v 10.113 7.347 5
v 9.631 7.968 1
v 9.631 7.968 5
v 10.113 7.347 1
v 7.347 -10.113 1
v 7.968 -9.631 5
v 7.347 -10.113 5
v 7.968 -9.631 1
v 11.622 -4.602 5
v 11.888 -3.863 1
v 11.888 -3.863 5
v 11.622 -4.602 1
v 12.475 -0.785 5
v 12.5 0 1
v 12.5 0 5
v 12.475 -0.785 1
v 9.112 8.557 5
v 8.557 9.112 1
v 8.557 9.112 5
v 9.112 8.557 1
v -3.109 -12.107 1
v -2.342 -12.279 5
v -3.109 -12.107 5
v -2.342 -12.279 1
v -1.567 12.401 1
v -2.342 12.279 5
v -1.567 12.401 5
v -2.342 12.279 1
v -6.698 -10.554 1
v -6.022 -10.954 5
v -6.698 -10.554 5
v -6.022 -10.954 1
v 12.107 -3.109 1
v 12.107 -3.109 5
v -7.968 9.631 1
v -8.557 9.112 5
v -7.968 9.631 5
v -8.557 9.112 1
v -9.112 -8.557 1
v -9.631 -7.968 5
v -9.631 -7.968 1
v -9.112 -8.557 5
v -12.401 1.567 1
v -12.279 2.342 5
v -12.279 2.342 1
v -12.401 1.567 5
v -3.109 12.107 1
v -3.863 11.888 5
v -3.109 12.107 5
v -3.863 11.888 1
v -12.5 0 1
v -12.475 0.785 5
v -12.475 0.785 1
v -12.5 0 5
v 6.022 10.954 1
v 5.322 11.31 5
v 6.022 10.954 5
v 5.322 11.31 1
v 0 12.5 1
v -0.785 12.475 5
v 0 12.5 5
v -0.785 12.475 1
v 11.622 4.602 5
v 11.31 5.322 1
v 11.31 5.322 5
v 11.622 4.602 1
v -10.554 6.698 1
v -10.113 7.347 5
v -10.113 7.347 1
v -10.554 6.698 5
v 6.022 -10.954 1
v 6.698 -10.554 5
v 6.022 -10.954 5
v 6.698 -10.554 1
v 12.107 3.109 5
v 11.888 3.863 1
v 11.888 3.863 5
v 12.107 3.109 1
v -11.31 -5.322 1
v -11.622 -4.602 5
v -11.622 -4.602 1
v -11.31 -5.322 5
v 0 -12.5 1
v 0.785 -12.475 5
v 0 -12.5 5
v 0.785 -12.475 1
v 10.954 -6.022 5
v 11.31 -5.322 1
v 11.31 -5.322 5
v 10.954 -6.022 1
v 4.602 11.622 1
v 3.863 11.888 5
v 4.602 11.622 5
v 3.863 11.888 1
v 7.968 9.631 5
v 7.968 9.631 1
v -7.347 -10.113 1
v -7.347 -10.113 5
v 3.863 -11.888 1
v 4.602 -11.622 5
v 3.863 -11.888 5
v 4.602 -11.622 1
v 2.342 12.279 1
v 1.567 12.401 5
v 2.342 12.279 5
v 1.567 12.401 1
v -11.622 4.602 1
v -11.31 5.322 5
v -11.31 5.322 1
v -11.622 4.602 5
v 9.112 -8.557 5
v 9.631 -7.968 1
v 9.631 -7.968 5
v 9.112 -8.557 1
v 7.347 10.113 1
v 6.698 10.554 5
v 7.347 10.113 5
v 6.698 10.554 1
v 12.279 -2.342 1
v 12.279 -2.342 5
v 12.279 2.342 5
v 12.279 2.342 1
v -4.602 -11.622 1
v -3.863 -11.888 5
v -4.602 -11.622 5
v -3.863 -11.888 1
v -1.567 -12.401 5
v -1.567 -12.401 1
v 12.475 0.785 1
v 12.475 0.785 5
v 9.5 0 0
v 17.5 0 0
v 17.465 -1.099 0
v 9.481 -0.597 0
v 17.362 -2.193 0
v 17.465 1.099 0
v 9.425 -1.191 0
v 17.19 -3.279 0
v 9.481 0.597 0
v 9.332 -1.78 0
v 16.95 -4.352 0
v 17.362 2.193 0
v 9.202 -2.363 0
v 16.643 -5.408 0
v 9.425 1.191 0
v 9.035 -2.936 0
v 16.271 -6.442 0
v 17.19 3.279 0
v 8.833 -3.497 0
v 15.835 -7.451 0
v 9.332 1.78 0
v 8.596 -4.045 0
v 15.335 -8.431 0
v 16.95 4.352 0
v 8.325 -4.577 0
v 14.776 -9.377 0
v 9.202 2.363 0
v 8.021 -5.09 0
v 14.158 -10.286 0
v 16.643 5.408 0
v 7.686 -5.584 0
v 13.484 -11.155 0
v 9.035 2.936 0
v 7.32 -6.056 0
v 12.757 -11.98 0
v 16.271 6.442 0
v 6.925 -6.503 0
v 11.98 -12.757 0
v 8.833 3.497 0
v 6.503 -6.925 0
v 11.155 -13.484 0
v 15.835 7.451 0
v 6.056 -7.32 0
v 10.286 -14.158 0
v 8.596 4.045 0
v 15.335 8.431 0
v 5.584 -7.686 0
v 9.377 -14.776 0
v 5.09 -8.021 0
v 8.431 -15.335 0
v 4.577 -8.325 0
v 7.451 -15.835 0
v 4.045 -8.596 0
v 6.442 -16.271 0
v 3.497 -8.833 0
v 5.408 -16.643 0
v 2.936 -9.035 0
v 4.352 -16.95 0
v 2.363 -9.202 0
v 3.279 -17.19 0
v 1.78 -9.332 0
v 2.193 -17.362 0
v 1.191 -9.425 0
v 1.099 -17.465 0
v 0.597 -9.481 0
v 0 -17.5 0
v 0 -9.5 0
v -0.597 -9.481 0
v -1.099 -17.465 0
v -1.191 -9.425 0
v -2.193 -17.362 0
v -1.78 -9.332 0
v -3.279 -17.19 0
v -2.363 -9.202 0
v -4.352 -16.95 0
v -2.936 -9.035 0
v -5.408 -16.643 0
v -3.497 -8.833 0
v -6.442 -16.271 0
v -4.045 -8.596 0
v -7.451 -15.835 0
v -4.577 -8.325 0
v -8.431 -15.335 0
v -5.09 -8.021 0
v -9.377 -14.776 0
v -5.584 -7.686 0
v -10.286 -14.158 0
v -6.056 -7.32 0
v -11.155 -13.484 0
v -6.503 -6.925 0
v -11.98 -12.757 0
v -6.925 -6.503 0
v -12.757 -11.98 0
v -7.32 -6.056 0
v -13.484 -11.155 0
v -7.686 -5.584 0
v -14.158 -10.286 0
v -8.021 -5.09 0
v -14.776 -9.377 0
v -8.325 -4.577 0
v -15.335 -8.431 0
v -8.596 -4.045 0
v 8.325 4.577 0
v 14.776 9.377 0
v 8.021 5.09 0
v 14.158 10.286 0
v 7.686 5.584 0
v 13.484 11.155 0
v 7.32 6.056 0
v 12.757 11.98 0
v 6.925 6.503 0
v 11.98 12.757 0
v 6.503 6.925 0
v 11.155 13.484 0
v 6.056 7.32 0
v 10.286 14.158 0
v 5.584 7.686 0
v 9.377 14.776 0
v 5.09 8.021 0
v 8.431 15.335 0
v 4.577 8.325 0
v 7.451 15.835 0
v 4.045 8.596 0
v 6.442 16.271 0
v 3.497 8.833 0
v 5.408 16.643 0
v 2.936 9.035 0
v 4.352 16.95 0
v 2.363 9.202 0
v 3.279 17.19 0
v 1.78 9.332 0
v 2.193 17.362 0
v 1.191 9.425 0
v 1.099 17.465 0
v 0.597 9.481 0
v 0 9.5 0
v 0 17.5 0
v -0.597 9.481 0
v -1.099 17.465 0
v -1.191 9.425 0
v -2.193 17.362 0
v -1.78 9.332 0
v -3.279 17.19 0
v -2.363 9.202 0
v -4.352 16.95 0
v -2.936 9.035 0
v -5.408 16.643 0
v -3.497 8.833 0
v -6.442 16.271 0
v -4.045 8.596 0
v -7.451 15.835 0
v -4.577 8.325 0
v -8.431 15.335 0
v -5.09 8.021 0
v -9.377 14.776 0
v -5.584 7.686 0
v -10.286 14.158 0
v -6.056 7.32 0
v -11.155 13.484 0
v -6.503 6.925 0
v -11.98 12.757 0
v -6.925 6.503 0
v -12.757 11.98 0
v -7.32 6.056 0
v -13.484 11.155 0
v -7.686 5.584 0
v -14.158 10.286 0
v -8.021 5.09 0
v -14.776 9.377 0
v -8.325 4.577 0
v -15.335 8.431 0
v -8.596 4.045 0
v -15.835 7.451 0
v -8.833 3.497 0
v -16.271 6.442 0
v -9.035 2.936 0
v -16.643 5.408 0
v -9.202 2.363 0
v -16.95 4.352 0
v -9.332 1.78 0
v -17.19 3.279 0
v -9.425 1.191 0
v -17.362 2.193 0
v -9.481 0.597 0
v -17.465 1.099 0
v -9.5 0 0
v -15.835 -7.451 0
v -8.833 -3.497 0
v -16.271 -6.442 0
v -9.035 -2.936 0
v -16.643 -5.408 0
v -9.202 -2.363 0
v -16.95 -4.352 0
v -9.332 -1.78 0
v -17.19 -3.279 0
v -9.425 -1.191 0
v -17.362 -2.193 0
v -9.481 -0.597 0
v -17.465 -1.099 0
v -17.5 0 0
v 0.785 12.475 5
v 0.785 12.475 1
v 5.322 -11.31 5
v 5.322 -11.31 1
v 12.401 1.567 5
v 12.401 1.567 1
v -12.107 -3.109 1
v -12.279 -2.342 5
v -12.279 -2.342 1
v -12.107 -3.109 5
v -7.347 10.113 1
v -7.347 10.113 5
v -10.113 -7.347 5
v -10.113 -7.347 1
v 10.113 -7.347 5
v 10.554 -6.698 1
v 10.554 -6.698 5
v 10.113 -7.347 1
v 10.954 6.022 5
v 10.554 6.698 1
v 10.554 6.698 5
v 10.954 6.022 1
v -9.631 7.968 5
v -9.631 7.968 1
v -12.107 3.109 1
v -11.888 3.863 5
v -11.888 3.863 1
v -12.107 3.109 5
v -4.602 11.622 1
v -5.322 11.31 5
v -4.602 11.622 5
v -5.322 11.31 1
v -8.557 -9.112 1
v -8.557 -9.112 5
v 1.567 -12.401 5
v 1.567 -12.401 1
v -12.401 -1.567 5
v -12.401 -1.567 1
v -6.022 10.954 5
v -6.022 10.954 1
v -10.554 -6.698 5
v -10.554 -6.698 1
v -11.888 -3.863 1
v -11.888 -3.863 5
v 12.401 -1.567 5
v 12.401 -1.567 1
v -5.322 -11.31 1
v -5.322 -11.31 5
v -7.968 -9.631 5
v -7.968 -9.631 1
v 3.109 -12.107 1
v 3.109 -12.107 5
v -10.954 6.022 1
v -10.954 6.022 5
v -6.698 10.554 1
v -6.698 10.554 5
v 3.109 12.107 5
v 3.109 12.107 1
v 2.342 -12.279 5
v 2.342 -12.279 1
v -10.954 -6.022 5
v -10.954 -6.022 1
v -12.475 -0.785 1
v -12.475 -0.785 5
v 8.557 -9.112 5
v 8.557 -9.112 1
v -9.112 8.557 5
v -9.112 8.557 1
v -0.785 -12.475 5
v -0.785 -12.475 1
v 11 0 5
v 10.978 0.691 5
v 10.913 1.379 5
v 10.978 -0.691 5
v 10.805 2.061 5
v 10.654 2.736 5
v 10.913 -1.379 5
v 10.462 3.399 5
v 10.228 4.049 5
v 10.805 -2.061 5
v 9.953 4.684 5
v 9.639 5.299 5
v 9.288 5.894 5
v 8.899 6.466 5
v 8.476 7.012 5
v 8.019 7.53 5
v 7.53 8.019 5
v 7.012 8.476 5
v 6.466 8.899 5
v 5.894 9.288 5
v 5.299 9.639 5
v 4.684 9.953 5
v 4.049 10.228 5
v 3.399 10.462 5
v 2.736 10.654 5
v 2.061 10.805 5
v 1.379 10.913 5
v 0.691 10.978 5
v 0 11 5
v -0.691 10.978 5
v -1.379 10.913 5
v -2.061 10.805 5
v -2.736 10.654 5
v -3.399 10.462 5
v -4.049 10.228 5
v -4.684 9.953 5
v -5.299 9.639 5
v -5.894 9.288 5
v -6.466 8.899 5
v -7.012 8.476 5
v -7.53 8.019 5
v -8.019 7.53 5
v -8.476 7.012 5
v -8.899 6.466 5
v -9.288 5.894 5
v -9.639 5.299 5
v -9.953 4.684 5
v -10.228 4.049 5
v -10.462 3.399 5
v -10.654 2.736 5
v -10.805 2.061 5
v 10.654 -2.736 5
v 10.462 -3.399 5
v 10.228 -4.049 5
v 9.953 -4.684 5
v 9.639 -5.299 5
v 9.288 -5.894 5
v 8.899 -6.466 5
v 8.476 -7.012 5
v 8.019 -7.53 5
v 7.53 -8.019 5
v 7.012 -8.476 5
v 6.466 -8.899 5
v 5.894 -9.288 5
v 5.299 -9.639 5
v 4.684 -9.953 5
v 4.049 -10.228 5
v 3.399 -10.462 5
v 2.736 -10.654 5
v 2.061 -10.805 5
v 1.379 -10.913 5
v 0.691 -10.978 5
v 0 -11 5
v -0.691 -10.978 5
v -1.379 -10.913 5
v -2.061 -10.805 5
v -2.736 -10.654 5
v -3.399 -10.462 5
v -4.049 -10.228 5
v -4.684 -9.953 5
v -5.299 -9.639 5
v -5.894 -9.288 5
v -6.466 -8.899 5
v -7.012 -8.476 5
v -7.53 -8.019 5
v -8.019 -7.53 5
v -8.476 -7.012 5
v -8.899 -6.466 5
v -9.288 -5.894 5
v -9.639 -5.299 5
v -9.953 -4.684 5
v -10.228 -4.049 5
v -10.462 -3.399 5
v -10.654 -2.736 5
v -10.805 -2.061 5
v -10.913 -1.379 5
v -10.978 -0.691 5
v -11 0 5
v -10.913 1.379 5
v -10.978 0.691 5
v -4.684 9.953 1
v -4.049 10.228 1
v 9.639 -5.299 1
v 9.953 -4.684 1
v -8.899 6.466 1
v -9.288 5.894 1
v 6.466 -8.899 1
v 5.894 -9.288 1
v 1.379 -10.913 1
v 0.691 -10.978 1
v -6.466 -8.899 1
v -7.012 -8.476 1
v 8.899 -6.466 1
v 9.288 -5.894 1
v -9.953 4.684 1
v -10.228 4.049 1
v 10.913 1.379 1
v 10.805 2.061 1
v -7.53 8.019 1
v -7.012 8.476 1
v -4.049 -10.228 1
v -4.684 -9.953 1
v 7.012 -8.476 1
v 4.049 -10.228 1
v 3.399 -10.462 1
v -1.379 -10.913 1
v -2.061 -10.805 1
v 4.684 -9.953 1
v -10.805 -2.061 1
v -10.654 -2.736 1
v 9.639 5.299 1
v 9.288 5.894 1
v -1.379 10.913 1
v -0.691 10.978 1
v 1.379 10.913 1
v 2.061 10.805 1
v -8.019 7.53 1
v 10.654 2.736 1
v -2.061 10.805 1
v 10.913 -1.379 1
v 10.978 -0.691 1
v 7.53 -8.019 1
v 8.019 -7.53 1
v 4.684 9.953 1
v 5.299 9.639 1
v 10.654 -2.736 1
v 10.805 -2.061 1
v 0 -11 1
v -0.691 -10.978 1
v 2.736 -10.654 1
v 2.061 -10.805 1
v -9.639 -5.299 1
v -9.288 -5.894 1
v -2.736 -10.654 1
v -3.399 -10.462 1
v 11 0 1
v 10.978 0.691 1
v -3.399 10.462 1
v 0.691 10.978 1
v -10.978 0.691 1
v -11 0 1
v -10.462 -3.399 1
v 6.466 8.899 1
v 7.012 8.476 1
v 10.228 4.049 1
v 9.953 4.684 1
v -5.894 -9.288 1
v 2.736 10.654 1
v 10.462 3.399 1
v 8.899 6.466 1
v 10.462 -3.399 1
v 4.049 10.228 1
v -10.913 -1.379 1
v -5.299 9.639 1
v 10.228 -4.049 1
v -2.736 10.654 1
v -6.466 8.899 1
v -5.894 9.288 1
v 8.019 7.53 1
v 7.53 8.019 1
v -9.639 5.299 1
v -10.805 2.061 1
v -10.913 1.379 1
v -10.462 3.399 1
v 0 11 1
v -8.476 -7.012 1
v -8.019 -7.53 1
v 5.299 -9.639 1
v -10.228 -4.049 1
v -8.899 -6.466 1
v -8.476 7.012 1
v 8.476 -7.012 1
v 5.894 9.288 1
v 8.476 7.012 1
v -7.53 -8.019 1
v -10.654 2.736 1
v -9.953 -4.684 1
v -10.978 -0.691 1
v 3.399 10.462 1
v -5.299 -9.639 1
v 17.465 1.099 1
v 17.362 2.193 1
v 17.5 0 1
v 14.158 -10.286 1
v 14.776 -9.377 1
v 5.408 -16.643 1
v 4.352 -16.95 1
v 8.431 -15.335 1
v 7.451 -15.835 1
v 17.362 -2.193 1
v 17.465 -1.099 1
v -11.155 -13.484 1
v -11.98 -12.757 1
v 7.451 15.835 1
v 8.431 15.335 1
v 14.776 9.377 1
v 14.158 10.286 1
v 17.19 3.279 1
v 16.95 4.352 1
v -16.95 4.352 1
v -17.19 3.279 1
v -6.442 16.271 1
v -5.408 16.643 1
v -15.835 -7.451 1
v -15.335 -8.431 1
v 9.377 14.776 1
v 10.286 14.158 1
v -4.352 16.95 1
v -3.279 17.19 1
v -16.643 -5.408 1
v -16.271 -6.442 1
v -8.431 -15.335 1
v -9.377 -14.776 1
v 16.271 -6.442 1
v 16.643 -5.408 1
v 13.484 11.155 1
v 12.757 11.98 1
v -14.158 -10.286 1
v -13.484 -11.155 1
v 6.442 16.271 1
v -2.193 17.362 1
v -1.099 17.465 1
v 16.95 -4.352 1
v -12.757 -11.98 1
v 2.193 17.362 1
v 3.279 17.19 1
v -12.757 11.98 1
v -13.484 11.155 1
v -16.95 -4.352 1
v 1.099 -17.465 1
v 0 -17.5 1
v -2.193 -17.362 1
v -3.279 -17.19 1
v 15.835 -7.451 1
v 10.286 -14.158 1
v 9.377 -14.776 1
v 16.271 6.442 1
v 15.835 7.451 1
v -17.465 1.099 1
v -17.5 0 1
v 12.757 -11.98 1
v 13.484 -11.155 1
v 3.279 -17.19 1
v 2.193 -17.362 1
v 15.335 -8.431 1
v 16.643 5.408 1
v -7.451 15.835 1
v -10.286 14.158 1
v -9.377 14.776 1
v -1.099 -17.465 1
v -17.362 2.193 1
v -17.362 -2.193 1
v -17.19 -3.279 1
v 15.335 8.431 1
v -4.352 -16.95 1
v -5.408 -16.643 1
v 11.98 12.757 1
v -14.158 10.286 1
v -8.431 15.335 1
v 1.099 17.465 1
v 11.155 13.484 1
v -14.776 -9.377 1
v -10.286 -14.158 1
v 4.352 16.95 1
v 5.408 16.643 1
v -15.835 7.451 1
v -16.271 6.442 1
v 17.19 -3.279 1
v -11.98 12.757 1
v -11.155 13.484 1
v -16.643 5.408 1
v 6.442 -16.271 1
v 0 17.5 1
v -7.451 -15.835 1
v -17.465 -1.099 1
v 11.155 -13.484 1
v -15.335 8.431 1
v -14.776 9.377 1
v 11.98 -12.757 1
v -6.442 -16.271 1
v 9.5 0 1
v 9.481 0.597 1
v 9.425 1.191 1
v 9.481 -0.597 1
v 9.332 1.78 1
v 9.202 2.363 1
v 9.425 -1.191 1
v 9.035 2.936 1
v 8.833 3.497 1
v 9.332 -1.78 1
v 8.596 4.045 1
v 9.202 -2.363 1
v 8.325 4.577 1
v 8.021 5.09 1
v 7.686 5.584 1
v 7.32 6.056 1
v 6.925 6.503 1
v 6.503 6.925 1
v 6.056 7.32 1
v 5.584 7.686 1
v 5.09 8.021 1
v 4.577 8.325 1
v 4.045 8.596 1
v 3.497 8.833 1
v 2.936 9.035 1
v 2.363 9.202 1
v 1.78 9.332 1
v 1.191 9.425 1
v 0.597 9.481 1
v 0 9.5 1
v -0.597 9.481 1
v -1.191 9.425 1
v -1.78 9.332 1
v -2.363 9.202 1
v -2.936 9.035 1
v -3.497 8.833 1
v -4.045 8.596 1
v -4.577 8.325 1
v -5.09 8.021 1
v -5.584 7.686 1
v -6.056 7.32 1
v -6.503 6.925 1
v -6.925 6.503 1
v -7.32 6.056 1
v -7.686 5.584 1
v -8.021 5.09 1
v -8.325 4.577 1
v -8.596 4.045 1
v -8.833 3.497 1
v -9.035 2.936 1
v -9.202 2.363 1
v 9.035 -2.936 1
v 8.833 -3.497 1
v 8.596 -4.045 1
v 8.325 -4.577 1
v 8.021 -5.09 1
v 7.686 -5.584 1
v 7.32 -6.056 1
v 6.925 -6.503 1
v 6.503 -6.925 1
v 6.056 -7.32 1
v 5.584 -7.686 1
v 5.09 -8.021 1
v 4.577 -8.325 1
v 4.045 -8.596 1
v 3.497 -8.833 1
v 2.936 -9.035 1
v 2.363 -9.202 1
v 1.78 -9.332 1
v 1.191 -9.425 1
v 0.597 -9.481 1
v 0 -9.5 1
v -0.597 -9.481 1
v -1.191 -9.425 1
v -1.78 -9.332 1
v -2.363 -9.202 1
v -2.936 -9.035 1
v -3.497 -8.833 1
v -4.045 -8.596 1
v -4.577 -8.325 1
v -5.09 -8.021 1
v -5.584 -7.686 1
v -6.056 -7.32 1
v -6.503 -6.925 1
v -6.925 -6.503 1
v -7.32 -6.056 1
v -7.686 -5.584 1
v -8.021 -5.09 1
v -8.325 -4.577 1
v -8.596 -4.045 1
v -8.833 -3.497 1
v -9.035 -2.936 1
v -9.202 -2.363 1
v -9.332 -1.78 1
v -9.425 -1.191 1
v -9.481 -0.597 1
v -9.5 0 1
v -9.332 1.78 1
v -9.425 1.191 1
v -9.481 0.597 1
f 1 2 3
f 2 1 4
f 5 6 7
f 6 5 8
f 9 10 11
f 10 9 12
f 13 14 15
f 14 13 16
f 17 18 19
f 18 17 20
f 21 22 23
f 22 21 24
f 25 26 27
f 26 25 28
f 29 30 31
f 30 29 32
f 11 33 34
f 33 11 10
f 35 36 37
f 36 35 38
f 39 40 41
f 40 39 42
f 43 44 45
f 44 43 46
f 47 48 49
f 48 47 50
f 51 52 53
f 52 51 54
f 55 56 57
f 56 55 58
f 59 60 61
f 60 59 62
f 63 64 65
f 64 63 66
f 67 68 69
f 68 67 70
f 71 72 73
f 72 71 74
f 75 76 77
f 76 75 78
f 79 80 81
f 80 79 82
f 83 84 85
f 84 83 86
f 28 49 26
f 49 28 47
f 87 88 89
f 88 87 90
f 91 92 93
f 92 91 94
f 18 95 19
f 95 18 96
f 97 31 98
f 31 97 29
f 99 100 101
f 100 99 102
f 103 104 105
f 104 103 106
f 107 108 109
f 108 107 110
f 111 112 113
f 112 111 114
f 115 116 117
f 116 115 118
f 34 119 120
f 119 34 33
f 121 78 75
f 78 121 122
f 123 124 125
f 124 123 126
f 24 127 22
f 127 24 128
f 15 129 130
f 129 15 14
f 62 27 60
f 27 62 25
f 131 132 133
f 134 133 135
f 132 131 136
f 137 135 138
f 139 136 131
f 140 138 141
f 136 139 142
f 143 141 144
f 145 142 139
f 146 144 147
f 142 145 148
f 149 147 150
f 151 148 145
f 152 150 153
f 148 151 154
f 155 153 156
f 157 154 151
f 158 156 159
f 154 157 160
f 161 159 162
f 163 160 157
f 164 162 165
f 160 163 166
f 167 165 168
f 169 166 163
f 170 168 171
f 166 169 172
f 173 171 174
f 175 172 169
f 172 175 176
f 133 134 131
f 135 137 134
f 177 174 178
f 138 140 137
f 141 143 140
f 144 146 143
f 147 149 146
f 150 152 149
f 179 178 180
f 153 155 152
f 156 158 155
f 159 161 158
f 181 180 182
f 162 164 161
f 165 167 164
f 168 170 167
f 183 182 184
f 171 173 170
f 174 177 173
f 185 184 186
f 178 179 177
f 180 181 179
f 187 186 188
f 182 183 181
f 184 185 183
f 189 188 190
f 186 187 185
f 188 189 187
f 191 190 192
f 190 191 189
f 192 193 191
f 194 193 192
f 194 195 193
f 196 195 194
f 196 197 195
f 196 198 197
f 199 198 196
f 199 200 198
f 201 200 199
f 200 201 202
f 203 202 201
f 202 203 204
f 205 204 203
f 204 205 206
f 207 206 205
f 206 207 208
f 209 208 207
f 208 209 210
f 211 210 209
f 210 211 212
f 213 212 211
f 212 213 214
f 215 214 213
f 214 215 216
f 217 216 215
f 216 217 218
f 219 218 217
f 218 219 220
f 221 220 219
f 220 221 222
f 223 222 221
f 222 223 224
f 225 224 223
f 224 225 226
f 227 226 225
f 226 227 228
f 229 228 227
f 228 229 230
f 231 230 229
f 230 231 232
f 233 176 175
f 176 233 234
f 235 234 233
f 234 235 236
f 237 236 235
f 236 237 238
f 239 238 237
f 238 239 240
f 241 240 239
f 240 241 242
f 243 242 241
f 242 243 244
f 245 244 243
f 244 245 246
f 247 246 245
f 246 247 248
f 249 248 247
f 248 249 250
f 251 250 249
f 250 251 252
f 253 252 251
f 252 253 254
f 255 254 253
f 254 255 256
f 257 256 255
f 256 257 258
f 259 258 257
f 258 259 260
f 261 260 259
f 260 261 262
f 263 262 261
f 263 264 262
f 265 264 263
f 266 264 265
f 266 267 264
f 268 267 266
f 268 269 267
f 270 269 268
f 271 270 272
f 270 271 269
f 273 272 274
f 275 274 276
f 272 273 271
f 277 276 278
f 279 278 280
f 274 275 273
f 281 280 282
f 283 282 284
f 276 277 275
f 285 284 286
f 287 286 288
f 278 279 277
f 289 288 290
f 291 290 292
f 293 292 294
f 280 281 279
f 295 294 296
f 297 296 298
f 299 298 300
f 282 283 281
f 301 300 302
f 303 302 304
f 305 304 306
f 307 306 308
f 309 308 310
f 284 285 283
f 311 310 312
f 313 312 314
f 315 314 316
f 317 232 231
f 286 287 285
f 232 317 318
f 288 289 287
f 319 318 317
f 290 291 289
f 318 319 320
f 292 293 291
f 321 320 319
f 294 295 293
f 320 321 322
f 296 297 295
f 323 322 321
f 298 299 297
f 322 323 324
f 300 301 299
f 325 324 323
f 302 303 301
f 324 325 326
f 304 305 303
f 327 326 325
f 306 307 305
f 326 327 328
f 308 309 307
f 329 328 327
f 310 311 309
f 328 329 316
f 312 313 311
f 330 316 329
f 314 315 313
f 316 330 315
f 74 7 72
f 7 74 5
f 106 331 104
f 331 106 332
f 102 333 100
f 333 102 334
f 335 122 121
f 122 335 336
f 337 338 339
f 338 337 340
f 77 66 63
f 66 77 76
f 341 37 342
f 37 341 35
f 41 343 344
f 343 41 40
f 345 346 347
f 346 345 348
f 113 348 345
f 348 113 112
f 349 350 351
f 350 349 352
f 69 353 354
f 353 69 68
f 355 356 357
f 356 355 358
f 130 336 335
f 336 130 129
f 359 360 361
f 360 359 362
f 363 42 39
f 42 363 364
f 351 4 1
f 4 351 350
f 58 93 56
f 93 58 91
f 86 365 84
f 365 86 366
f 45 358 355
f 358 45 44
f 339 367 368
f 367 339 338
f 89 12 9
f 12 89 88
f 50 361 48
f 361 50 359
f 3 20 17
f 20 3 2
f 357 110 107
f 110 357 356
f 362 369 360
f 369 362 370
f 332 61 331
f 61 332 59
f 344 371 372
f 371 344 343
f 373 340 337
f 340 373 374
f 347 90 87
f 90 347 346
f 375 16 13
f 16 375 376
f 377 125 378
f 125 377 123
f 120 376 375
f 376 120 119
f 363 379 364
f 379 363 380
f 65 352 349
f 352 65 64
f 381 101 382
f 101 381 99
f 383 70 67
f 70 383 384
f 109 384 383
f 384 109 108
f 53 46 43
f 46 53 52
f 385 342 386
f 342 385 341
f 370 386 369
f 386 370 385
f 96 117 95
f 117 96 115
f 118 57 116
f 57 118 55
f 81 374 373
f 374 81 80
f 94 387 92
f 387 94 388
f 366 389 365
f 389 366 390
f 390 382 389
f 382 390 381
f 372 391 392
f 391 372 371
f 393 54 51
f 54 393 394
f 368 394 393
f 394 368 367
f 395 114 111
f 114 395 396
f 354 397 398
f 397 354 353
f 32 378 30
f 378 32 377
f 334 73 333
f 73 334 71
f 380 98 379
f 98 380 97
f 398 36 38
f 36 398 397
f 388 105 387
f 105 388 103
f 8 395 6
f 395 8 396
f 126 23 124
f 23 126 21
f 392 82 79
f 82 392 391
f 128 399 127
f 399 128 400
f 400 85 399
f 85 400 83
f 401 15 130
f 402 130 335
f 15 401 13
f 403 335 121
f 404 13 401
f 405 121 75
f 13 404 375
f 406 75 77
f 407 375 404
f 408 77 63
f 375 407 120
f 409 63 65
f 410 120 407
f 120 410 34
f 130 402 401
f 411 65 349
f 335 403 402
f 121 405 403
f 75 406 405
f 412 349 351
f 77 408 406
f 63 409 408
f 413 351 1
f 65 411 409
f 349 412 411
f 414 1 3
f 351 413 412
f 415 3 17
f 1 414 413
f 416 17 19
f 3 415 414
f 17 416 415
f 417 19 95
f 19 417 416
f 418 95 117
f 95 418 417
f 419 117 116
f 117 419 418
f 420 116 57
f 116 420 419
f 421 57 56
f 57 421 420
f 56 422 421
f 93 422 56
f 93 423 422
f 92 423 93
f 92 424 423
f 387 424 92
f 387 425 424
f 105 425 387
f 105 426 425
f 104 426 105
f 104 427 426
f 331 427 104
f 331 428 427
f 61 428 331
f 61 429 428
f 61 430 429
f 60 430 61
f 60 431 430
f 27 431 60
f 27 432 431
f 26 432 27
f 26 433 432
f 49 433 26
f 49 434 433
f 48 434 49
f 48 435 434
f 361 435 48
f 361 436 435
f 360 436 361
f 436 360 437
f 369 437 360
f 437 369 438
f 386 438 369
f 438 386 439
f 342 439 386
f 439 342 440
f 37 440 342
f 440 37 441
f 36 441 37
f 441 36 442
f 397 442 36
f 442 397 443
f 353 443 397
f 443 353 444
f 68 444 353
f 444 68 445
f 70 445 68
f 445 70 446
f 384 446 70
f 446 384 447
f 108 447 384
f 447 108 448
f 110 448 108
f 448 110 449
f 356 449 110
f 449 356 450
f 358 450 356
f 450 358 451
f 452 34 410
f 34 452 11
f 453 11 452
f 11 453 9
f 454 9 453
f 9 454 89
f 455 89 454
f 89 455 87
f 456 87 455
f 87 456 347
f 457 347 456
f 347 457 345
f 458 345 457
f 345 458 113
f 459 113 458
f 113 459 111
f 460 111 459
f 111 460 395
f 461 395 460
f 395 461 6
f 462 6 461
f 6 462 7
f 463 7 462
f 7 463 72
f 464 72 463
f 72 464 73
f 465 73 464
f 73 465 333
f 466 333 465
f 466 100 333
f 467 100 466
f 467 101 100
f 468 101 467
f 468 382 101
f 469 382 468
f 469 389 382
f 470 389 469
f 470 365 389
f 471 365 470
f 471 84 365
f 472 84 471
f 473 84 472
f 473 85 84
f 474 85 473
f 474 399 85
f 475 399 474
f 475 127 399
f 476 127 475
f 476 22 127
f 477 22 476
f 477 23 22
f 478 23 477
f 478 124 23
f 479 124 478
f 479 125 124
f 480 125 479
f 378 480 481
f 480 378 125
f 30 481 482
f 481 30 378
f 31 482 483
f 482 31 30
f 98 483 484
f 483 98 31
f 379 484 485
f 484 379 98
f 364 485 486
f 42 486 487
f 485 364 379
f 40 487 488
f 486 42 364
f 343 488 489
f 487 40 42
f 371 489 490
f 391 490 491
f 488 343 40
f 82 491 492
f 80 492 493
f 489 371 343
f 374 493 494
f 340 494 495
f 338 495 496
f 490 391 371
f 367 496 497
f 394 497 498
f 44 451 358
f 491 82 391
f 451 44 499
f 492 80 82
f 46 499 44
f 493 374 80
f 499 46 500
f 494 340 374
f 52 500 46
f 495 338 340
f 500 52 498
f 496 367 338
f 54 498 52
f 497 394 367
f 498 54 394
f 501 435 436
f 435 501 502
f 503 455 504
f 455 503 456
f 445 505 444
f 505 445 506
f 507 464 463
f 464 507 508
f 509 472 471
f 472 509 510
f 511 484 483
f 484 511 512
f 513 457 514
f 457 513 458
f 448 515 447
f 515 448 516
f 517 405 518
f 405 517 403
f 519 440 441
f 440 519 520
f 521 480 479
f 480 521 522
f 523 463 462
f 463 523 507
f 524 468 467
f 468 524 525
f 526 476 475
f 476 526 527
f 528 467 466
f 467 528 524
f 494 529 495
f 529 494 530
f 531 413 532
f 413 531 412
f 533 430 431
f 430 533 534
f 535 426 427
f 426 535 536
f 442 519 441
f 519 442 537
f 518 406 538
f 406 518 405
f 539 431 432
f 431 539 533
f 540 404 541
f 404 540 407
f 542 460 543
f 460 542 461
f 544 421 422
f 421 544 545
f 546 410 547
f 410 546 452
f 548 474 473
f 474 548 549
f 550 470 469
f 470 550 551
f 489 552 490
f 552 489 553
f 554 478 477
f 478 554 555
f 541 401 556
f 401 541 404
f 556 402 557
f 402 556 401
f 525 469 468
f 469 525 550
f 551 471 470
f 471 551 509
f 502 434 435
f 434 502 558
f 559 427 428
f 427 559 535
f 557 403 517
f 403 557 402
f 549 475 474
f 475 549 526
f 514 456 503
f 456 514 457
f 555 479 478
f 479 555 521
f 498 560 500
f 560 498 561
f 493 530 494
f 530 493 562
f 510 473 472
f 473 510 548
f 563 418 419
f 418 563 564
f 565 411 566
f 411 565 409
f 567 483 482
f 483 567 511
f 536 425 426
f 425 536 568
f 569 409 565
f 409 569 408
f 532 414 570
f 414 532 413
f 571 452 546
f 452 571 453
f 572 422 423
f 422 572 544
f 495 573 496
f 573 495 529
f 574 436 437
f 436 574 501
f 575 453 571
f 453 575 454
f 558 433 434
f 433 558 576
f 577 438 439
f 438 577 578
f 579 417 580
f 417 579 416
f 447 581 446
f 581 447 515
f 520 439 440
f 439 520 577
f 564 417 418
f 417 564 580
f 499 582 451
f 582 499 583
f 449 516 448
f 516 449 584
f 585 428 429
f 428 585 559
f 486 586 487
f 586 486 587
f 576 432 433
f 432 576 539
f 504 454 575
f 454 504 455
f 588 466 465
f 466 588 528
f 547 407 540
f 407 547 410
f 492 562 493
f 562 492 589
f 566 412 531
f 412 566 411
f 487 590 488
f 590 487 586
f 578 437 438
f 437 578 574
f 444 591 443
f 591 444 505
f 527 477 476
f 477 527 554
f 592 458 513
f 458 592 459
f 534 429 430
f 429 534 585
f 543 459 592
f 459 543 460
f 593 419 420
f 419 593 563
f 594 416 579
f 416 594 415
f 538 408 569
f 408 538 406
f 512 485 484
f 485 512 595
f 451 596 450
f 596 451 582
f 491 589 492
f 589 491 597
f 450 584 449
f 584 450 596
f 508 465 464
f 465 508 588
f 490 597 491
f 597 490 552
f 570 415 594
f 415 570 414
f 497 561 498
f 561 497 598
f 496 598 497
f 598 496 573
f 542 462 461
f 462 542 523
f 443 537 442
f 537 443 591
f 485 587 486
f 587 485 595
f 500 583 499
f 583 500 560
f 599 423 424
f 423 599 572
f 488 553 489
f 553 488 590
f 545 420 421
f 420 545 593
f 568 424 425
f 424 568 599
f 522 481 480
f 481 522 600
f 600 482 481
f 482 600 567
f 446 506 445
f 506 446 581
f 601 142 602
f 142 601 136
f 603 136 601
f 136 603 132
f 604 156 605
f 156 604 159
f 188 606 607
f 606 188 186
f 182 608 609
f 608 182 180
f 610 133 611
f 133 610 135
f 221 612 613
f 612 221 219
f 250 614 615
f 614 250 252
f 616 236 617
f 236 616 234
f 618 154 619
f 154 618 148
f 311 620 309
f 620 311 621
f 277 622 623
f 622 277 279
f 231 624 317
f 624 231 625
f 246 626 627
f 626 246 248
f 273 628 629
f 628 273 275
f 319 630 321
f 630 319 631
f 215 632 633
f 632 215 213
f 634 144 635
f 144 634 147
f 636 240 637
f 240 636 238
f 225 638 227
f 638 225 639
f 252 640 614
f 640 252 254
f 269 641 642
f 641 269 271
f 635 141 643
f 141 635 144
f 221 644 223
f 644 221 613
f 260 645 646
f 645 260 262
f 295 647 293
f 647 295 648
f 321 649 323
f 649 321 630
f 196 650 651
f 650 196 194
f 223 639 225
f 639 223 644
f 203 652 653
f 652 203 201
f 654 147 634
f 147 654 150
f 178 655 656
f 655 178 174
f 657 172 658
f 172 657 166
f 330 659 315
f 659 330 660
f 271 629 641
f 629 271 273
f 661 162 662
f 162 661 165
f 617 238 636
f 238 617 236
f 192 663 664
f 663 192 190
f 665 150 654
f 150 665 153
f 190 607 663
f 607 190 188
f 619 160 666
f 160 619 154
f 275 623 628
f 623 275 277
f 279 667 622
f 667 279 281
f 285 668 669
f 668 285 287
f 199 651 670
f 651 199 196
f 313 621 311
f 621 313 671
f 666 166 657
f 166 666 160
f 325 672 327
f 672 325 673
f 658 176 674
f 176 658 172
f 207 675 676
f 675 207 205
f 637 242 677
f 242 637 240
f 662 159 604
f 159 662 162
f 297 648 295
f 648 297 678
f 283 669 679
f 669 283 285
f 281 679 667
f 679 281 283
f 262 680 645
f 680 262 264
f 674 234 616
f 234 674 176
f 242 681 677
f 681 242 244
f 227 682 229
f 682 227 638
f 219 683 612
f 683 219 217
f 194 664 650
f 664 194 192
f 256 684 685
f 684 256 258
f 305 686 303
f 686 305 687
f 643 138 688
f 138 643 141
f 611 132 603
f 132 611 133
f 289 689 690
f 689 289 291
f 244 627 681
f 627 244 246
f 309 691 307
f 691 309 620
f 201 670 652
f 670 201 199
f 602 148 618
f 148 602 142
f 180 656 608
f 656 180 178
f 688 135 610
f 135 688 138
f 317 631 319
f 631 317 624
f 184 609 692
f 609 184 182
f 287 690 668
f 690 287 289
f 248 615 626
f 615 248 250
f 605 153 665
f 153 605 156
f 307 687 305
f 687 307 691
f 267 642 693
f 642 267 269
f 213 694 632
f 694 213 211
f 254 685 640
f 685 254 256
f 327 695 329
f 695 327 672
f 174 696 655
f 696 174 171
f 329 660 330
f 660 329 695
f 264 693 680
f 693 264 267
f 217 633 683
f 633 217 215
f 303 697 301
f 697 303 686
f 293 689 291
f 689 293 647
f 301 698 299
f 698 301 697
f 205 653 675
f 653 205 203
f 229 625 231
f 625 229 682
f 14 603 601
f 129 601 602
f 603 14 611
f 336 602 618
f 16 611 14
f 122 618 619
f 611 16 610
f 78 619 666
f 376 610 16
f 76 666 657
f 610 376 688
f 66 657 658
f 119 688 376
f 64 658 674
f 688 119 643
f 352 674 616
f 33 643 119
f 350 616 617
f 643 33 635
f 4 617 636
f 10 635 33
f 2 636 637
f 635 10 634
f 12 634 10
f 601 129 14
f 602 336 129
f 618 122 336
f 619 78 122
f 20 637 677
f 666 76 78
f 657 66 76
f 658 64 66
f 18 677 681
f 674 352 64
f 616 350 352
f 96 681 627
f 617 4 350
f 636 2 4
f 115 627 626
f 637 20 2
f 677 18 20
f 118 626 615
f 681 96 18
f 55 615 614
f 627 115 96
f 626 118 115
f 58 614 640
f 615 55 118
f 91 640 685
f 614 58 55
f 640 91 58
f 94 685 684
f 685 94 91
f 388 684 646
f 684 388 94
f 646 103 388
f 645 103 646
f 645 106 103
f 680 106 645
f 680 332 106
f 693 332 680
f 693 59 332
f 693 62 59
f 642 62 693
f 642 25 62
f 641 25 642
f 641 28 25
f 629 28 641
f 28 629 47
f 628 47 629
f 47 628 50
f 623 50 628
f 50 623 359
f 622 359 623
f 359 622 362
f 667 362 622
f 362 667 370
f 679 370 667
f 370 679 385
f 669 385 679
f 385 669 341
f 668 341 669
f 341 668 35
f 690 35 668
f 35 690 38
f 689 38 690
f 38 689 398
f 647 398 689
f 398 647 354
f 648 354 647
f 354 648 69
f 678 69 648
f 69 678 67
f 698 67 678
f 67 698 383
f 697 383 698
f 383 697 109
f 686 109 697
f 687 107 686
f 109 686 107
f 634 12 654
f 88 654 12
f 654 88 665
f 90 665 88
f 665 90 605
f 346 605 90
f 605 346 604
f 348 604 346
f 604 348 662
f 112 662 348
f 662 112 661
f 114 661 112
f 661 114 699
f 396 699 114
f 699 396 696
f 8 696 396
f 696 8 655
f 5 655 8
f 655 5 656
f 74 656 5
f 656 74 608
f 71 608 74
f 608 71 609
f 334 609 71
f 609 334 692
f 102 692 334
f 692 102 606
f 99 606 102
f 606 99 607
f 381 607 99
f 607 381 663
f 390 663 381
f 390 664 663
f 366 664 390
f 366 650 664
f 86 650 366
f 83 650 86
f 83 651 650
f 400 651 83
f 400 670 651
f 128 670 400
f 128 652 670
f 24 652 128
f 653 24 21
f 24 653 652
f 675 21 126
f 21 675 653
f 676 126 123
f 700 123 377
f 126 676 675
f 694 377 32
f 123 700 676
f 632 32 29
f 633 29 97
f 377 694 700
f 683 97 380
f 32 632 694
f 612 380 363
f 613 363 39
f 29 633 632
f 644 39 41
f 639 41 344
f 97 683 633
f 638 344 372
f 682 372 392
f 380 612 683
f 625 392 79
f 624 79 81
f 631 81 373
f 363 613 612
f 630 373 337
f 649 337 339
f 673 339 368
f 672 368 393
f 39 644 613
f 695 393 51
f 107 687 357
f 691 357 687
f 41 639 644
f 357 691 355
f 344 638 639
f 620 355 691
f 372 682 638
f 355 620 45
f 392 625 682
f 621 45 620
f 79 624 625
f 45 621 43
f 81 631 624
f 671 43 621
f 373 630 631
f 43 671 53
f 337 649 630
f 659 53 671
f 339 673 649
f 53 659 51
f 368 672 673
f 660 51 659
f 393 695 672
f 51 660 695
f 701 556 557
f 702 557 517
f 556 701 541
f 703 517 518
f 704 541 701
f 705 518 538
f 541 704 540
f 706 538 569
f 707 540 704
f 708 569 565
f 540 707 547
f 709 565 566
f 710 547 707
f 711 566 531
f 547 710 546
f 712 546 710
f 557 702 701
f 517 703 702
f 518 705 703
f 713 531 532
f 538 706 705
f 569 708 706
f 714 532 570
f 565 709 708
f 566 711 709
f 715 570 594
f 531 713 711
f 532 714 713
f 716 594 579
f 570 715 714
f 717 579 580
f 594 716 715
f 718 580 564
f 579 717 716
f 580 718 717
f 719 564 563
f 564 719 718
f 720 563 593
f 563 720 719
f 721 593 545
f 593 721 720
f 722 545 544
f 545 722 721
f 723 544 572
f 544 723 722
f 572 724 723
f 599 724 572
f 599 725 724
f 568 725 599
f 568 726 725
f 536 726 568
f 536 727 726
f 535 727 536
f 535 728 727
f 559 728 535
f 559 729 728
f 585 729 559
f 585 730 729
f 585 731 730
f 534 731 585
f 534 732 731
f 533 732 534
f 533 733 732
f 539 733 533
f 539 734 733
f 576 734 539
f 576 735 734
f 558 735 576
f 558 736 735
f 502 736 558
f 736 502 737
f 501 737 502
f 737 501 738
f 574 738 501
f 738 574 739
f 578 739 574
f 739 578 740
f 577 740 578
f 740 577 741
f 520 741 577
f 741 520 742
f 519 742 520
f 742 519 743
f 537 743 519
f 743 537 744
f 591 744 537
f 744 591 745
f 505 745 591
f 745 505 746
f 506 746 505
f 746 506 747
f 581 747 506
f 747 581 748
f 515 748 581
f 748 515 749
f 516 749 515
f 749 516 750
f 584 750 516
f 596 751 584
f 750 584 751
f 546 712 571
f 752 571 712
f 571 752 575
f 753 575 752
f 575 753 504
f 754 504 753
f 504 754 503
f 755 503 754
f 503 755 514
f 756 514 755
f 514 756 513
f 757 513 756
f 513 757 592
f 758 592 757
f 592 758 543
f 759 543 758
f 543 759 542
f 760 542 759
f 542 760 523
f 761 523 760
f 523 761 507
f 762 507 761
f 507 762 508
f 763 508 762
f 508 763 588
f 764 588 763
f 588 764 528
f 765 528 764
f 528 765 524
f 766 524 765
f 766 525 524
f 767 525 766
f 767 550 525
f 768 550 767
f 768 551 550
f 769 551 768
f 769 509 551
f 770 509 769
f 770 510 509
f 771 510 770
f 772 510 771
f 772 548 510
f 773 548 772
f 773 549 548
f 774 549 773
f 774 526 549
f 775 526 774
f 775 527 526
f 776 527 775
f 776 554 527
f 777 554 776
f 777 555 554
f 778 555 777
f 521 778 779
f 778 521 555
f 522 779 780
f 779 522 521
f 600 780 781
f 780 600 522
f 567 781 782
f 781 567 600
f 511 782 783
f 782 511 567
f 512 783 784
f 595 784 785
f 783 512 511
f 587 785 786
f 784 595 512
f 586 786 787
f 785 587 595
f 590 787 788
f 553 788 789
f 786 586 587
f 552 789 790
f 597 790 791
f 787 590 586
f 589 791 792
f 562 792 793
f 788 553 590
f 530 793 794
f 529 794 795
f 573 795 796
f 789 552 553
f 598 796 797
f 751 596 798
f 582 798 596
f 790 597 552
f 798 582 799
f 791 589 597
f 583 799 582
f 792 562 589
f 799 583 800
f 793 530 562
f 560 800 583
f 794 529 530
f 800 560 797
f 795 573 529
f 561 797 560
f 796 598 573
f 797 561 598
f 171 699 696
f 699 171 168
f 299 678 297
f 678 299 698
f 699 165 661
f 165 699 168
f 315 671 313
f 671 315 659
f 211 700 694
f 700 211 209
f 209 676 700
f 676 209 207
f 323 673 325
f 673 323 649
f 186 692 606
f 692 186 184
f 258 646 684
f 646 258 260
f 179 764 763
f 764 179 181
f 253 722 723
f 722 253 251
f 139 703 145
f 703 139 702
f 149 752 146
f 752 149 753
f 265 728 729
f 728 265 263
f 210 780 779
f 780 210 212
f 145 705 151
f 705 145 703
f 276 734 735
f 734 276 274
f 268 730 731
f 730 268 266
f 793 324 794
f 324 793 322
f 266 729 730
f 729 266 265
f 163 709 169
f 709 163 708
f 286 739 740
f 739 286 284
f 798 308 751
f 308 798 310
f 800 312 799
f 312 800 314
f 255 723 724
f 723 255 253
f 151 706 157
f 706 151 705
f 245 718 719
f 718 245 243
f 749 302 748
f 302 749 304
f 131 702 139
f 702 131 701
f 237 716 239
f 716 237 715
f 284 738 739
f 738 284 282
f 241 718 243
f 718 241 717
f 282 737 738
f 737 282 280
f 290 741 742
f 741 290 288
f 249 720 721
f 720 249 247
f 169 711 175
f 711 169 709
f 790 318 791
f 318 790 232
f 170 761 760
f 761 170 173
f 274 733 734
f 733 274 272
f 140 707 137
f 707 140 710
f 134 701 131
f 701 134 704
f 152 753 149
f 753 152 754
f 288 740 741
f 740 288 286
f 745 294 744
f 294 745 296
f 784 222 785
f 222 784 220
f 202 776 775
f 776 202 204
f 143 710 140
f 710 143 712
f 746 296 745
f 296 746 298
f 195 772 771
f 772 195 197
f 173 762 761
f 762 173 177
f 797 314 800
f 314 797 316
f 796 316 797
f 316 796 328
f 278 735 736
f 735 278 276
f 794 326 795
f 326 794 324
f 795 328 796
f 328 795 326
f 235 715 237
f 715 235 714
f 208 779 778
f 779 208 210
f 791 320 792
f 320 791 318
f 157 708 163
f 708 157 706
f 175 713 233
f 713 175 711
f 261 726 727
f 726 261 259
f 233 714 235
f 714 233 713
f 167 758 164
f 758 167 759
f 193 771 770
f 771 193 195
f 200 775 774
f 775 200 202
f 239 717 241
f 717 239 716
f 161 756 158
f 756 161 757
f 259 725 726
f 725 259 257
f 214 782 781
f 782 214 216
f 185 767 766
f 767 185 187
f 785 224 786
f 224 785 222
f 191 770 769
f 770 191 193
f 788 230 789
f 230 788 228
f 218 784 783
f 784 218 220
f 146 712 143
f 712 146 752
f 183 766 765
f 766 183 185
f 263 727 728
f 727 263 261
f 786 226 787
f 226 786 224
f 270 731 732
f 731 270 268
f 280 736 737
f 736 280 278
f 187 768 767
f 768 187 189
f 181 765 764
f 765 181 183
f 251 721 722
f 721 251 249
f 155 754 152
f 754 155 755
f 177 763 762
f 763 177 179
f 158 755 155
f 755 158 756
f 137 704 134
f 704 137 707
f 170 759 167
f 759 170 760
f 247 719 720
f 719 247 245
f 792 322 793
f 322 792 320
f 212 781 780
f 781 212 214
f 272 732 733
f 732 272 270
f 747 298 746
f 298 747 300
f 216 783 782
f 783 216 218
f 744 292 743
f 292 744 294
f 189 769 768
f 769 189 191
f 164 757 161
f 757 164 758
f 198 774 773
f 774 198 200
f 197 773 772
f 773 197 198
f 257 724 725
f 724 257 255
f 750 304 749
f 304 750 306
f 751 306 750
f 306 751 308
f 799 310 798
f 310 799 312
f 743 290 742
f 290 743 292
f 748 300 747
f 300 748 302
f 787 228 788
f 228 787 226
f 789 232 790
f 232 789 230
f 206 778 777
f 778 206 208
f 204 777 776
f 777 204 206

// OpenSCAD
d = 22 + 0.;
w = 1.5;
bw = 1.0;
h = 7;
l = 5;

difference(){
    cylinder( d = d + 2 * w, h = h / 2 + w, $fn = 100 );
    translate( [ 0, 0, -1 ] )
        cylinder( d = d, h = h / 2 + w + 2, $fn = 100 );
}
difference(){
    cylinder( d = d + 2 * ( w + l ), h = bw, $fn = 100 );
    translate( [ 0, 0, -1 ] )
        cylinder( d = d - 2 * w, h = bw + 2, $fn = 100 );
}
